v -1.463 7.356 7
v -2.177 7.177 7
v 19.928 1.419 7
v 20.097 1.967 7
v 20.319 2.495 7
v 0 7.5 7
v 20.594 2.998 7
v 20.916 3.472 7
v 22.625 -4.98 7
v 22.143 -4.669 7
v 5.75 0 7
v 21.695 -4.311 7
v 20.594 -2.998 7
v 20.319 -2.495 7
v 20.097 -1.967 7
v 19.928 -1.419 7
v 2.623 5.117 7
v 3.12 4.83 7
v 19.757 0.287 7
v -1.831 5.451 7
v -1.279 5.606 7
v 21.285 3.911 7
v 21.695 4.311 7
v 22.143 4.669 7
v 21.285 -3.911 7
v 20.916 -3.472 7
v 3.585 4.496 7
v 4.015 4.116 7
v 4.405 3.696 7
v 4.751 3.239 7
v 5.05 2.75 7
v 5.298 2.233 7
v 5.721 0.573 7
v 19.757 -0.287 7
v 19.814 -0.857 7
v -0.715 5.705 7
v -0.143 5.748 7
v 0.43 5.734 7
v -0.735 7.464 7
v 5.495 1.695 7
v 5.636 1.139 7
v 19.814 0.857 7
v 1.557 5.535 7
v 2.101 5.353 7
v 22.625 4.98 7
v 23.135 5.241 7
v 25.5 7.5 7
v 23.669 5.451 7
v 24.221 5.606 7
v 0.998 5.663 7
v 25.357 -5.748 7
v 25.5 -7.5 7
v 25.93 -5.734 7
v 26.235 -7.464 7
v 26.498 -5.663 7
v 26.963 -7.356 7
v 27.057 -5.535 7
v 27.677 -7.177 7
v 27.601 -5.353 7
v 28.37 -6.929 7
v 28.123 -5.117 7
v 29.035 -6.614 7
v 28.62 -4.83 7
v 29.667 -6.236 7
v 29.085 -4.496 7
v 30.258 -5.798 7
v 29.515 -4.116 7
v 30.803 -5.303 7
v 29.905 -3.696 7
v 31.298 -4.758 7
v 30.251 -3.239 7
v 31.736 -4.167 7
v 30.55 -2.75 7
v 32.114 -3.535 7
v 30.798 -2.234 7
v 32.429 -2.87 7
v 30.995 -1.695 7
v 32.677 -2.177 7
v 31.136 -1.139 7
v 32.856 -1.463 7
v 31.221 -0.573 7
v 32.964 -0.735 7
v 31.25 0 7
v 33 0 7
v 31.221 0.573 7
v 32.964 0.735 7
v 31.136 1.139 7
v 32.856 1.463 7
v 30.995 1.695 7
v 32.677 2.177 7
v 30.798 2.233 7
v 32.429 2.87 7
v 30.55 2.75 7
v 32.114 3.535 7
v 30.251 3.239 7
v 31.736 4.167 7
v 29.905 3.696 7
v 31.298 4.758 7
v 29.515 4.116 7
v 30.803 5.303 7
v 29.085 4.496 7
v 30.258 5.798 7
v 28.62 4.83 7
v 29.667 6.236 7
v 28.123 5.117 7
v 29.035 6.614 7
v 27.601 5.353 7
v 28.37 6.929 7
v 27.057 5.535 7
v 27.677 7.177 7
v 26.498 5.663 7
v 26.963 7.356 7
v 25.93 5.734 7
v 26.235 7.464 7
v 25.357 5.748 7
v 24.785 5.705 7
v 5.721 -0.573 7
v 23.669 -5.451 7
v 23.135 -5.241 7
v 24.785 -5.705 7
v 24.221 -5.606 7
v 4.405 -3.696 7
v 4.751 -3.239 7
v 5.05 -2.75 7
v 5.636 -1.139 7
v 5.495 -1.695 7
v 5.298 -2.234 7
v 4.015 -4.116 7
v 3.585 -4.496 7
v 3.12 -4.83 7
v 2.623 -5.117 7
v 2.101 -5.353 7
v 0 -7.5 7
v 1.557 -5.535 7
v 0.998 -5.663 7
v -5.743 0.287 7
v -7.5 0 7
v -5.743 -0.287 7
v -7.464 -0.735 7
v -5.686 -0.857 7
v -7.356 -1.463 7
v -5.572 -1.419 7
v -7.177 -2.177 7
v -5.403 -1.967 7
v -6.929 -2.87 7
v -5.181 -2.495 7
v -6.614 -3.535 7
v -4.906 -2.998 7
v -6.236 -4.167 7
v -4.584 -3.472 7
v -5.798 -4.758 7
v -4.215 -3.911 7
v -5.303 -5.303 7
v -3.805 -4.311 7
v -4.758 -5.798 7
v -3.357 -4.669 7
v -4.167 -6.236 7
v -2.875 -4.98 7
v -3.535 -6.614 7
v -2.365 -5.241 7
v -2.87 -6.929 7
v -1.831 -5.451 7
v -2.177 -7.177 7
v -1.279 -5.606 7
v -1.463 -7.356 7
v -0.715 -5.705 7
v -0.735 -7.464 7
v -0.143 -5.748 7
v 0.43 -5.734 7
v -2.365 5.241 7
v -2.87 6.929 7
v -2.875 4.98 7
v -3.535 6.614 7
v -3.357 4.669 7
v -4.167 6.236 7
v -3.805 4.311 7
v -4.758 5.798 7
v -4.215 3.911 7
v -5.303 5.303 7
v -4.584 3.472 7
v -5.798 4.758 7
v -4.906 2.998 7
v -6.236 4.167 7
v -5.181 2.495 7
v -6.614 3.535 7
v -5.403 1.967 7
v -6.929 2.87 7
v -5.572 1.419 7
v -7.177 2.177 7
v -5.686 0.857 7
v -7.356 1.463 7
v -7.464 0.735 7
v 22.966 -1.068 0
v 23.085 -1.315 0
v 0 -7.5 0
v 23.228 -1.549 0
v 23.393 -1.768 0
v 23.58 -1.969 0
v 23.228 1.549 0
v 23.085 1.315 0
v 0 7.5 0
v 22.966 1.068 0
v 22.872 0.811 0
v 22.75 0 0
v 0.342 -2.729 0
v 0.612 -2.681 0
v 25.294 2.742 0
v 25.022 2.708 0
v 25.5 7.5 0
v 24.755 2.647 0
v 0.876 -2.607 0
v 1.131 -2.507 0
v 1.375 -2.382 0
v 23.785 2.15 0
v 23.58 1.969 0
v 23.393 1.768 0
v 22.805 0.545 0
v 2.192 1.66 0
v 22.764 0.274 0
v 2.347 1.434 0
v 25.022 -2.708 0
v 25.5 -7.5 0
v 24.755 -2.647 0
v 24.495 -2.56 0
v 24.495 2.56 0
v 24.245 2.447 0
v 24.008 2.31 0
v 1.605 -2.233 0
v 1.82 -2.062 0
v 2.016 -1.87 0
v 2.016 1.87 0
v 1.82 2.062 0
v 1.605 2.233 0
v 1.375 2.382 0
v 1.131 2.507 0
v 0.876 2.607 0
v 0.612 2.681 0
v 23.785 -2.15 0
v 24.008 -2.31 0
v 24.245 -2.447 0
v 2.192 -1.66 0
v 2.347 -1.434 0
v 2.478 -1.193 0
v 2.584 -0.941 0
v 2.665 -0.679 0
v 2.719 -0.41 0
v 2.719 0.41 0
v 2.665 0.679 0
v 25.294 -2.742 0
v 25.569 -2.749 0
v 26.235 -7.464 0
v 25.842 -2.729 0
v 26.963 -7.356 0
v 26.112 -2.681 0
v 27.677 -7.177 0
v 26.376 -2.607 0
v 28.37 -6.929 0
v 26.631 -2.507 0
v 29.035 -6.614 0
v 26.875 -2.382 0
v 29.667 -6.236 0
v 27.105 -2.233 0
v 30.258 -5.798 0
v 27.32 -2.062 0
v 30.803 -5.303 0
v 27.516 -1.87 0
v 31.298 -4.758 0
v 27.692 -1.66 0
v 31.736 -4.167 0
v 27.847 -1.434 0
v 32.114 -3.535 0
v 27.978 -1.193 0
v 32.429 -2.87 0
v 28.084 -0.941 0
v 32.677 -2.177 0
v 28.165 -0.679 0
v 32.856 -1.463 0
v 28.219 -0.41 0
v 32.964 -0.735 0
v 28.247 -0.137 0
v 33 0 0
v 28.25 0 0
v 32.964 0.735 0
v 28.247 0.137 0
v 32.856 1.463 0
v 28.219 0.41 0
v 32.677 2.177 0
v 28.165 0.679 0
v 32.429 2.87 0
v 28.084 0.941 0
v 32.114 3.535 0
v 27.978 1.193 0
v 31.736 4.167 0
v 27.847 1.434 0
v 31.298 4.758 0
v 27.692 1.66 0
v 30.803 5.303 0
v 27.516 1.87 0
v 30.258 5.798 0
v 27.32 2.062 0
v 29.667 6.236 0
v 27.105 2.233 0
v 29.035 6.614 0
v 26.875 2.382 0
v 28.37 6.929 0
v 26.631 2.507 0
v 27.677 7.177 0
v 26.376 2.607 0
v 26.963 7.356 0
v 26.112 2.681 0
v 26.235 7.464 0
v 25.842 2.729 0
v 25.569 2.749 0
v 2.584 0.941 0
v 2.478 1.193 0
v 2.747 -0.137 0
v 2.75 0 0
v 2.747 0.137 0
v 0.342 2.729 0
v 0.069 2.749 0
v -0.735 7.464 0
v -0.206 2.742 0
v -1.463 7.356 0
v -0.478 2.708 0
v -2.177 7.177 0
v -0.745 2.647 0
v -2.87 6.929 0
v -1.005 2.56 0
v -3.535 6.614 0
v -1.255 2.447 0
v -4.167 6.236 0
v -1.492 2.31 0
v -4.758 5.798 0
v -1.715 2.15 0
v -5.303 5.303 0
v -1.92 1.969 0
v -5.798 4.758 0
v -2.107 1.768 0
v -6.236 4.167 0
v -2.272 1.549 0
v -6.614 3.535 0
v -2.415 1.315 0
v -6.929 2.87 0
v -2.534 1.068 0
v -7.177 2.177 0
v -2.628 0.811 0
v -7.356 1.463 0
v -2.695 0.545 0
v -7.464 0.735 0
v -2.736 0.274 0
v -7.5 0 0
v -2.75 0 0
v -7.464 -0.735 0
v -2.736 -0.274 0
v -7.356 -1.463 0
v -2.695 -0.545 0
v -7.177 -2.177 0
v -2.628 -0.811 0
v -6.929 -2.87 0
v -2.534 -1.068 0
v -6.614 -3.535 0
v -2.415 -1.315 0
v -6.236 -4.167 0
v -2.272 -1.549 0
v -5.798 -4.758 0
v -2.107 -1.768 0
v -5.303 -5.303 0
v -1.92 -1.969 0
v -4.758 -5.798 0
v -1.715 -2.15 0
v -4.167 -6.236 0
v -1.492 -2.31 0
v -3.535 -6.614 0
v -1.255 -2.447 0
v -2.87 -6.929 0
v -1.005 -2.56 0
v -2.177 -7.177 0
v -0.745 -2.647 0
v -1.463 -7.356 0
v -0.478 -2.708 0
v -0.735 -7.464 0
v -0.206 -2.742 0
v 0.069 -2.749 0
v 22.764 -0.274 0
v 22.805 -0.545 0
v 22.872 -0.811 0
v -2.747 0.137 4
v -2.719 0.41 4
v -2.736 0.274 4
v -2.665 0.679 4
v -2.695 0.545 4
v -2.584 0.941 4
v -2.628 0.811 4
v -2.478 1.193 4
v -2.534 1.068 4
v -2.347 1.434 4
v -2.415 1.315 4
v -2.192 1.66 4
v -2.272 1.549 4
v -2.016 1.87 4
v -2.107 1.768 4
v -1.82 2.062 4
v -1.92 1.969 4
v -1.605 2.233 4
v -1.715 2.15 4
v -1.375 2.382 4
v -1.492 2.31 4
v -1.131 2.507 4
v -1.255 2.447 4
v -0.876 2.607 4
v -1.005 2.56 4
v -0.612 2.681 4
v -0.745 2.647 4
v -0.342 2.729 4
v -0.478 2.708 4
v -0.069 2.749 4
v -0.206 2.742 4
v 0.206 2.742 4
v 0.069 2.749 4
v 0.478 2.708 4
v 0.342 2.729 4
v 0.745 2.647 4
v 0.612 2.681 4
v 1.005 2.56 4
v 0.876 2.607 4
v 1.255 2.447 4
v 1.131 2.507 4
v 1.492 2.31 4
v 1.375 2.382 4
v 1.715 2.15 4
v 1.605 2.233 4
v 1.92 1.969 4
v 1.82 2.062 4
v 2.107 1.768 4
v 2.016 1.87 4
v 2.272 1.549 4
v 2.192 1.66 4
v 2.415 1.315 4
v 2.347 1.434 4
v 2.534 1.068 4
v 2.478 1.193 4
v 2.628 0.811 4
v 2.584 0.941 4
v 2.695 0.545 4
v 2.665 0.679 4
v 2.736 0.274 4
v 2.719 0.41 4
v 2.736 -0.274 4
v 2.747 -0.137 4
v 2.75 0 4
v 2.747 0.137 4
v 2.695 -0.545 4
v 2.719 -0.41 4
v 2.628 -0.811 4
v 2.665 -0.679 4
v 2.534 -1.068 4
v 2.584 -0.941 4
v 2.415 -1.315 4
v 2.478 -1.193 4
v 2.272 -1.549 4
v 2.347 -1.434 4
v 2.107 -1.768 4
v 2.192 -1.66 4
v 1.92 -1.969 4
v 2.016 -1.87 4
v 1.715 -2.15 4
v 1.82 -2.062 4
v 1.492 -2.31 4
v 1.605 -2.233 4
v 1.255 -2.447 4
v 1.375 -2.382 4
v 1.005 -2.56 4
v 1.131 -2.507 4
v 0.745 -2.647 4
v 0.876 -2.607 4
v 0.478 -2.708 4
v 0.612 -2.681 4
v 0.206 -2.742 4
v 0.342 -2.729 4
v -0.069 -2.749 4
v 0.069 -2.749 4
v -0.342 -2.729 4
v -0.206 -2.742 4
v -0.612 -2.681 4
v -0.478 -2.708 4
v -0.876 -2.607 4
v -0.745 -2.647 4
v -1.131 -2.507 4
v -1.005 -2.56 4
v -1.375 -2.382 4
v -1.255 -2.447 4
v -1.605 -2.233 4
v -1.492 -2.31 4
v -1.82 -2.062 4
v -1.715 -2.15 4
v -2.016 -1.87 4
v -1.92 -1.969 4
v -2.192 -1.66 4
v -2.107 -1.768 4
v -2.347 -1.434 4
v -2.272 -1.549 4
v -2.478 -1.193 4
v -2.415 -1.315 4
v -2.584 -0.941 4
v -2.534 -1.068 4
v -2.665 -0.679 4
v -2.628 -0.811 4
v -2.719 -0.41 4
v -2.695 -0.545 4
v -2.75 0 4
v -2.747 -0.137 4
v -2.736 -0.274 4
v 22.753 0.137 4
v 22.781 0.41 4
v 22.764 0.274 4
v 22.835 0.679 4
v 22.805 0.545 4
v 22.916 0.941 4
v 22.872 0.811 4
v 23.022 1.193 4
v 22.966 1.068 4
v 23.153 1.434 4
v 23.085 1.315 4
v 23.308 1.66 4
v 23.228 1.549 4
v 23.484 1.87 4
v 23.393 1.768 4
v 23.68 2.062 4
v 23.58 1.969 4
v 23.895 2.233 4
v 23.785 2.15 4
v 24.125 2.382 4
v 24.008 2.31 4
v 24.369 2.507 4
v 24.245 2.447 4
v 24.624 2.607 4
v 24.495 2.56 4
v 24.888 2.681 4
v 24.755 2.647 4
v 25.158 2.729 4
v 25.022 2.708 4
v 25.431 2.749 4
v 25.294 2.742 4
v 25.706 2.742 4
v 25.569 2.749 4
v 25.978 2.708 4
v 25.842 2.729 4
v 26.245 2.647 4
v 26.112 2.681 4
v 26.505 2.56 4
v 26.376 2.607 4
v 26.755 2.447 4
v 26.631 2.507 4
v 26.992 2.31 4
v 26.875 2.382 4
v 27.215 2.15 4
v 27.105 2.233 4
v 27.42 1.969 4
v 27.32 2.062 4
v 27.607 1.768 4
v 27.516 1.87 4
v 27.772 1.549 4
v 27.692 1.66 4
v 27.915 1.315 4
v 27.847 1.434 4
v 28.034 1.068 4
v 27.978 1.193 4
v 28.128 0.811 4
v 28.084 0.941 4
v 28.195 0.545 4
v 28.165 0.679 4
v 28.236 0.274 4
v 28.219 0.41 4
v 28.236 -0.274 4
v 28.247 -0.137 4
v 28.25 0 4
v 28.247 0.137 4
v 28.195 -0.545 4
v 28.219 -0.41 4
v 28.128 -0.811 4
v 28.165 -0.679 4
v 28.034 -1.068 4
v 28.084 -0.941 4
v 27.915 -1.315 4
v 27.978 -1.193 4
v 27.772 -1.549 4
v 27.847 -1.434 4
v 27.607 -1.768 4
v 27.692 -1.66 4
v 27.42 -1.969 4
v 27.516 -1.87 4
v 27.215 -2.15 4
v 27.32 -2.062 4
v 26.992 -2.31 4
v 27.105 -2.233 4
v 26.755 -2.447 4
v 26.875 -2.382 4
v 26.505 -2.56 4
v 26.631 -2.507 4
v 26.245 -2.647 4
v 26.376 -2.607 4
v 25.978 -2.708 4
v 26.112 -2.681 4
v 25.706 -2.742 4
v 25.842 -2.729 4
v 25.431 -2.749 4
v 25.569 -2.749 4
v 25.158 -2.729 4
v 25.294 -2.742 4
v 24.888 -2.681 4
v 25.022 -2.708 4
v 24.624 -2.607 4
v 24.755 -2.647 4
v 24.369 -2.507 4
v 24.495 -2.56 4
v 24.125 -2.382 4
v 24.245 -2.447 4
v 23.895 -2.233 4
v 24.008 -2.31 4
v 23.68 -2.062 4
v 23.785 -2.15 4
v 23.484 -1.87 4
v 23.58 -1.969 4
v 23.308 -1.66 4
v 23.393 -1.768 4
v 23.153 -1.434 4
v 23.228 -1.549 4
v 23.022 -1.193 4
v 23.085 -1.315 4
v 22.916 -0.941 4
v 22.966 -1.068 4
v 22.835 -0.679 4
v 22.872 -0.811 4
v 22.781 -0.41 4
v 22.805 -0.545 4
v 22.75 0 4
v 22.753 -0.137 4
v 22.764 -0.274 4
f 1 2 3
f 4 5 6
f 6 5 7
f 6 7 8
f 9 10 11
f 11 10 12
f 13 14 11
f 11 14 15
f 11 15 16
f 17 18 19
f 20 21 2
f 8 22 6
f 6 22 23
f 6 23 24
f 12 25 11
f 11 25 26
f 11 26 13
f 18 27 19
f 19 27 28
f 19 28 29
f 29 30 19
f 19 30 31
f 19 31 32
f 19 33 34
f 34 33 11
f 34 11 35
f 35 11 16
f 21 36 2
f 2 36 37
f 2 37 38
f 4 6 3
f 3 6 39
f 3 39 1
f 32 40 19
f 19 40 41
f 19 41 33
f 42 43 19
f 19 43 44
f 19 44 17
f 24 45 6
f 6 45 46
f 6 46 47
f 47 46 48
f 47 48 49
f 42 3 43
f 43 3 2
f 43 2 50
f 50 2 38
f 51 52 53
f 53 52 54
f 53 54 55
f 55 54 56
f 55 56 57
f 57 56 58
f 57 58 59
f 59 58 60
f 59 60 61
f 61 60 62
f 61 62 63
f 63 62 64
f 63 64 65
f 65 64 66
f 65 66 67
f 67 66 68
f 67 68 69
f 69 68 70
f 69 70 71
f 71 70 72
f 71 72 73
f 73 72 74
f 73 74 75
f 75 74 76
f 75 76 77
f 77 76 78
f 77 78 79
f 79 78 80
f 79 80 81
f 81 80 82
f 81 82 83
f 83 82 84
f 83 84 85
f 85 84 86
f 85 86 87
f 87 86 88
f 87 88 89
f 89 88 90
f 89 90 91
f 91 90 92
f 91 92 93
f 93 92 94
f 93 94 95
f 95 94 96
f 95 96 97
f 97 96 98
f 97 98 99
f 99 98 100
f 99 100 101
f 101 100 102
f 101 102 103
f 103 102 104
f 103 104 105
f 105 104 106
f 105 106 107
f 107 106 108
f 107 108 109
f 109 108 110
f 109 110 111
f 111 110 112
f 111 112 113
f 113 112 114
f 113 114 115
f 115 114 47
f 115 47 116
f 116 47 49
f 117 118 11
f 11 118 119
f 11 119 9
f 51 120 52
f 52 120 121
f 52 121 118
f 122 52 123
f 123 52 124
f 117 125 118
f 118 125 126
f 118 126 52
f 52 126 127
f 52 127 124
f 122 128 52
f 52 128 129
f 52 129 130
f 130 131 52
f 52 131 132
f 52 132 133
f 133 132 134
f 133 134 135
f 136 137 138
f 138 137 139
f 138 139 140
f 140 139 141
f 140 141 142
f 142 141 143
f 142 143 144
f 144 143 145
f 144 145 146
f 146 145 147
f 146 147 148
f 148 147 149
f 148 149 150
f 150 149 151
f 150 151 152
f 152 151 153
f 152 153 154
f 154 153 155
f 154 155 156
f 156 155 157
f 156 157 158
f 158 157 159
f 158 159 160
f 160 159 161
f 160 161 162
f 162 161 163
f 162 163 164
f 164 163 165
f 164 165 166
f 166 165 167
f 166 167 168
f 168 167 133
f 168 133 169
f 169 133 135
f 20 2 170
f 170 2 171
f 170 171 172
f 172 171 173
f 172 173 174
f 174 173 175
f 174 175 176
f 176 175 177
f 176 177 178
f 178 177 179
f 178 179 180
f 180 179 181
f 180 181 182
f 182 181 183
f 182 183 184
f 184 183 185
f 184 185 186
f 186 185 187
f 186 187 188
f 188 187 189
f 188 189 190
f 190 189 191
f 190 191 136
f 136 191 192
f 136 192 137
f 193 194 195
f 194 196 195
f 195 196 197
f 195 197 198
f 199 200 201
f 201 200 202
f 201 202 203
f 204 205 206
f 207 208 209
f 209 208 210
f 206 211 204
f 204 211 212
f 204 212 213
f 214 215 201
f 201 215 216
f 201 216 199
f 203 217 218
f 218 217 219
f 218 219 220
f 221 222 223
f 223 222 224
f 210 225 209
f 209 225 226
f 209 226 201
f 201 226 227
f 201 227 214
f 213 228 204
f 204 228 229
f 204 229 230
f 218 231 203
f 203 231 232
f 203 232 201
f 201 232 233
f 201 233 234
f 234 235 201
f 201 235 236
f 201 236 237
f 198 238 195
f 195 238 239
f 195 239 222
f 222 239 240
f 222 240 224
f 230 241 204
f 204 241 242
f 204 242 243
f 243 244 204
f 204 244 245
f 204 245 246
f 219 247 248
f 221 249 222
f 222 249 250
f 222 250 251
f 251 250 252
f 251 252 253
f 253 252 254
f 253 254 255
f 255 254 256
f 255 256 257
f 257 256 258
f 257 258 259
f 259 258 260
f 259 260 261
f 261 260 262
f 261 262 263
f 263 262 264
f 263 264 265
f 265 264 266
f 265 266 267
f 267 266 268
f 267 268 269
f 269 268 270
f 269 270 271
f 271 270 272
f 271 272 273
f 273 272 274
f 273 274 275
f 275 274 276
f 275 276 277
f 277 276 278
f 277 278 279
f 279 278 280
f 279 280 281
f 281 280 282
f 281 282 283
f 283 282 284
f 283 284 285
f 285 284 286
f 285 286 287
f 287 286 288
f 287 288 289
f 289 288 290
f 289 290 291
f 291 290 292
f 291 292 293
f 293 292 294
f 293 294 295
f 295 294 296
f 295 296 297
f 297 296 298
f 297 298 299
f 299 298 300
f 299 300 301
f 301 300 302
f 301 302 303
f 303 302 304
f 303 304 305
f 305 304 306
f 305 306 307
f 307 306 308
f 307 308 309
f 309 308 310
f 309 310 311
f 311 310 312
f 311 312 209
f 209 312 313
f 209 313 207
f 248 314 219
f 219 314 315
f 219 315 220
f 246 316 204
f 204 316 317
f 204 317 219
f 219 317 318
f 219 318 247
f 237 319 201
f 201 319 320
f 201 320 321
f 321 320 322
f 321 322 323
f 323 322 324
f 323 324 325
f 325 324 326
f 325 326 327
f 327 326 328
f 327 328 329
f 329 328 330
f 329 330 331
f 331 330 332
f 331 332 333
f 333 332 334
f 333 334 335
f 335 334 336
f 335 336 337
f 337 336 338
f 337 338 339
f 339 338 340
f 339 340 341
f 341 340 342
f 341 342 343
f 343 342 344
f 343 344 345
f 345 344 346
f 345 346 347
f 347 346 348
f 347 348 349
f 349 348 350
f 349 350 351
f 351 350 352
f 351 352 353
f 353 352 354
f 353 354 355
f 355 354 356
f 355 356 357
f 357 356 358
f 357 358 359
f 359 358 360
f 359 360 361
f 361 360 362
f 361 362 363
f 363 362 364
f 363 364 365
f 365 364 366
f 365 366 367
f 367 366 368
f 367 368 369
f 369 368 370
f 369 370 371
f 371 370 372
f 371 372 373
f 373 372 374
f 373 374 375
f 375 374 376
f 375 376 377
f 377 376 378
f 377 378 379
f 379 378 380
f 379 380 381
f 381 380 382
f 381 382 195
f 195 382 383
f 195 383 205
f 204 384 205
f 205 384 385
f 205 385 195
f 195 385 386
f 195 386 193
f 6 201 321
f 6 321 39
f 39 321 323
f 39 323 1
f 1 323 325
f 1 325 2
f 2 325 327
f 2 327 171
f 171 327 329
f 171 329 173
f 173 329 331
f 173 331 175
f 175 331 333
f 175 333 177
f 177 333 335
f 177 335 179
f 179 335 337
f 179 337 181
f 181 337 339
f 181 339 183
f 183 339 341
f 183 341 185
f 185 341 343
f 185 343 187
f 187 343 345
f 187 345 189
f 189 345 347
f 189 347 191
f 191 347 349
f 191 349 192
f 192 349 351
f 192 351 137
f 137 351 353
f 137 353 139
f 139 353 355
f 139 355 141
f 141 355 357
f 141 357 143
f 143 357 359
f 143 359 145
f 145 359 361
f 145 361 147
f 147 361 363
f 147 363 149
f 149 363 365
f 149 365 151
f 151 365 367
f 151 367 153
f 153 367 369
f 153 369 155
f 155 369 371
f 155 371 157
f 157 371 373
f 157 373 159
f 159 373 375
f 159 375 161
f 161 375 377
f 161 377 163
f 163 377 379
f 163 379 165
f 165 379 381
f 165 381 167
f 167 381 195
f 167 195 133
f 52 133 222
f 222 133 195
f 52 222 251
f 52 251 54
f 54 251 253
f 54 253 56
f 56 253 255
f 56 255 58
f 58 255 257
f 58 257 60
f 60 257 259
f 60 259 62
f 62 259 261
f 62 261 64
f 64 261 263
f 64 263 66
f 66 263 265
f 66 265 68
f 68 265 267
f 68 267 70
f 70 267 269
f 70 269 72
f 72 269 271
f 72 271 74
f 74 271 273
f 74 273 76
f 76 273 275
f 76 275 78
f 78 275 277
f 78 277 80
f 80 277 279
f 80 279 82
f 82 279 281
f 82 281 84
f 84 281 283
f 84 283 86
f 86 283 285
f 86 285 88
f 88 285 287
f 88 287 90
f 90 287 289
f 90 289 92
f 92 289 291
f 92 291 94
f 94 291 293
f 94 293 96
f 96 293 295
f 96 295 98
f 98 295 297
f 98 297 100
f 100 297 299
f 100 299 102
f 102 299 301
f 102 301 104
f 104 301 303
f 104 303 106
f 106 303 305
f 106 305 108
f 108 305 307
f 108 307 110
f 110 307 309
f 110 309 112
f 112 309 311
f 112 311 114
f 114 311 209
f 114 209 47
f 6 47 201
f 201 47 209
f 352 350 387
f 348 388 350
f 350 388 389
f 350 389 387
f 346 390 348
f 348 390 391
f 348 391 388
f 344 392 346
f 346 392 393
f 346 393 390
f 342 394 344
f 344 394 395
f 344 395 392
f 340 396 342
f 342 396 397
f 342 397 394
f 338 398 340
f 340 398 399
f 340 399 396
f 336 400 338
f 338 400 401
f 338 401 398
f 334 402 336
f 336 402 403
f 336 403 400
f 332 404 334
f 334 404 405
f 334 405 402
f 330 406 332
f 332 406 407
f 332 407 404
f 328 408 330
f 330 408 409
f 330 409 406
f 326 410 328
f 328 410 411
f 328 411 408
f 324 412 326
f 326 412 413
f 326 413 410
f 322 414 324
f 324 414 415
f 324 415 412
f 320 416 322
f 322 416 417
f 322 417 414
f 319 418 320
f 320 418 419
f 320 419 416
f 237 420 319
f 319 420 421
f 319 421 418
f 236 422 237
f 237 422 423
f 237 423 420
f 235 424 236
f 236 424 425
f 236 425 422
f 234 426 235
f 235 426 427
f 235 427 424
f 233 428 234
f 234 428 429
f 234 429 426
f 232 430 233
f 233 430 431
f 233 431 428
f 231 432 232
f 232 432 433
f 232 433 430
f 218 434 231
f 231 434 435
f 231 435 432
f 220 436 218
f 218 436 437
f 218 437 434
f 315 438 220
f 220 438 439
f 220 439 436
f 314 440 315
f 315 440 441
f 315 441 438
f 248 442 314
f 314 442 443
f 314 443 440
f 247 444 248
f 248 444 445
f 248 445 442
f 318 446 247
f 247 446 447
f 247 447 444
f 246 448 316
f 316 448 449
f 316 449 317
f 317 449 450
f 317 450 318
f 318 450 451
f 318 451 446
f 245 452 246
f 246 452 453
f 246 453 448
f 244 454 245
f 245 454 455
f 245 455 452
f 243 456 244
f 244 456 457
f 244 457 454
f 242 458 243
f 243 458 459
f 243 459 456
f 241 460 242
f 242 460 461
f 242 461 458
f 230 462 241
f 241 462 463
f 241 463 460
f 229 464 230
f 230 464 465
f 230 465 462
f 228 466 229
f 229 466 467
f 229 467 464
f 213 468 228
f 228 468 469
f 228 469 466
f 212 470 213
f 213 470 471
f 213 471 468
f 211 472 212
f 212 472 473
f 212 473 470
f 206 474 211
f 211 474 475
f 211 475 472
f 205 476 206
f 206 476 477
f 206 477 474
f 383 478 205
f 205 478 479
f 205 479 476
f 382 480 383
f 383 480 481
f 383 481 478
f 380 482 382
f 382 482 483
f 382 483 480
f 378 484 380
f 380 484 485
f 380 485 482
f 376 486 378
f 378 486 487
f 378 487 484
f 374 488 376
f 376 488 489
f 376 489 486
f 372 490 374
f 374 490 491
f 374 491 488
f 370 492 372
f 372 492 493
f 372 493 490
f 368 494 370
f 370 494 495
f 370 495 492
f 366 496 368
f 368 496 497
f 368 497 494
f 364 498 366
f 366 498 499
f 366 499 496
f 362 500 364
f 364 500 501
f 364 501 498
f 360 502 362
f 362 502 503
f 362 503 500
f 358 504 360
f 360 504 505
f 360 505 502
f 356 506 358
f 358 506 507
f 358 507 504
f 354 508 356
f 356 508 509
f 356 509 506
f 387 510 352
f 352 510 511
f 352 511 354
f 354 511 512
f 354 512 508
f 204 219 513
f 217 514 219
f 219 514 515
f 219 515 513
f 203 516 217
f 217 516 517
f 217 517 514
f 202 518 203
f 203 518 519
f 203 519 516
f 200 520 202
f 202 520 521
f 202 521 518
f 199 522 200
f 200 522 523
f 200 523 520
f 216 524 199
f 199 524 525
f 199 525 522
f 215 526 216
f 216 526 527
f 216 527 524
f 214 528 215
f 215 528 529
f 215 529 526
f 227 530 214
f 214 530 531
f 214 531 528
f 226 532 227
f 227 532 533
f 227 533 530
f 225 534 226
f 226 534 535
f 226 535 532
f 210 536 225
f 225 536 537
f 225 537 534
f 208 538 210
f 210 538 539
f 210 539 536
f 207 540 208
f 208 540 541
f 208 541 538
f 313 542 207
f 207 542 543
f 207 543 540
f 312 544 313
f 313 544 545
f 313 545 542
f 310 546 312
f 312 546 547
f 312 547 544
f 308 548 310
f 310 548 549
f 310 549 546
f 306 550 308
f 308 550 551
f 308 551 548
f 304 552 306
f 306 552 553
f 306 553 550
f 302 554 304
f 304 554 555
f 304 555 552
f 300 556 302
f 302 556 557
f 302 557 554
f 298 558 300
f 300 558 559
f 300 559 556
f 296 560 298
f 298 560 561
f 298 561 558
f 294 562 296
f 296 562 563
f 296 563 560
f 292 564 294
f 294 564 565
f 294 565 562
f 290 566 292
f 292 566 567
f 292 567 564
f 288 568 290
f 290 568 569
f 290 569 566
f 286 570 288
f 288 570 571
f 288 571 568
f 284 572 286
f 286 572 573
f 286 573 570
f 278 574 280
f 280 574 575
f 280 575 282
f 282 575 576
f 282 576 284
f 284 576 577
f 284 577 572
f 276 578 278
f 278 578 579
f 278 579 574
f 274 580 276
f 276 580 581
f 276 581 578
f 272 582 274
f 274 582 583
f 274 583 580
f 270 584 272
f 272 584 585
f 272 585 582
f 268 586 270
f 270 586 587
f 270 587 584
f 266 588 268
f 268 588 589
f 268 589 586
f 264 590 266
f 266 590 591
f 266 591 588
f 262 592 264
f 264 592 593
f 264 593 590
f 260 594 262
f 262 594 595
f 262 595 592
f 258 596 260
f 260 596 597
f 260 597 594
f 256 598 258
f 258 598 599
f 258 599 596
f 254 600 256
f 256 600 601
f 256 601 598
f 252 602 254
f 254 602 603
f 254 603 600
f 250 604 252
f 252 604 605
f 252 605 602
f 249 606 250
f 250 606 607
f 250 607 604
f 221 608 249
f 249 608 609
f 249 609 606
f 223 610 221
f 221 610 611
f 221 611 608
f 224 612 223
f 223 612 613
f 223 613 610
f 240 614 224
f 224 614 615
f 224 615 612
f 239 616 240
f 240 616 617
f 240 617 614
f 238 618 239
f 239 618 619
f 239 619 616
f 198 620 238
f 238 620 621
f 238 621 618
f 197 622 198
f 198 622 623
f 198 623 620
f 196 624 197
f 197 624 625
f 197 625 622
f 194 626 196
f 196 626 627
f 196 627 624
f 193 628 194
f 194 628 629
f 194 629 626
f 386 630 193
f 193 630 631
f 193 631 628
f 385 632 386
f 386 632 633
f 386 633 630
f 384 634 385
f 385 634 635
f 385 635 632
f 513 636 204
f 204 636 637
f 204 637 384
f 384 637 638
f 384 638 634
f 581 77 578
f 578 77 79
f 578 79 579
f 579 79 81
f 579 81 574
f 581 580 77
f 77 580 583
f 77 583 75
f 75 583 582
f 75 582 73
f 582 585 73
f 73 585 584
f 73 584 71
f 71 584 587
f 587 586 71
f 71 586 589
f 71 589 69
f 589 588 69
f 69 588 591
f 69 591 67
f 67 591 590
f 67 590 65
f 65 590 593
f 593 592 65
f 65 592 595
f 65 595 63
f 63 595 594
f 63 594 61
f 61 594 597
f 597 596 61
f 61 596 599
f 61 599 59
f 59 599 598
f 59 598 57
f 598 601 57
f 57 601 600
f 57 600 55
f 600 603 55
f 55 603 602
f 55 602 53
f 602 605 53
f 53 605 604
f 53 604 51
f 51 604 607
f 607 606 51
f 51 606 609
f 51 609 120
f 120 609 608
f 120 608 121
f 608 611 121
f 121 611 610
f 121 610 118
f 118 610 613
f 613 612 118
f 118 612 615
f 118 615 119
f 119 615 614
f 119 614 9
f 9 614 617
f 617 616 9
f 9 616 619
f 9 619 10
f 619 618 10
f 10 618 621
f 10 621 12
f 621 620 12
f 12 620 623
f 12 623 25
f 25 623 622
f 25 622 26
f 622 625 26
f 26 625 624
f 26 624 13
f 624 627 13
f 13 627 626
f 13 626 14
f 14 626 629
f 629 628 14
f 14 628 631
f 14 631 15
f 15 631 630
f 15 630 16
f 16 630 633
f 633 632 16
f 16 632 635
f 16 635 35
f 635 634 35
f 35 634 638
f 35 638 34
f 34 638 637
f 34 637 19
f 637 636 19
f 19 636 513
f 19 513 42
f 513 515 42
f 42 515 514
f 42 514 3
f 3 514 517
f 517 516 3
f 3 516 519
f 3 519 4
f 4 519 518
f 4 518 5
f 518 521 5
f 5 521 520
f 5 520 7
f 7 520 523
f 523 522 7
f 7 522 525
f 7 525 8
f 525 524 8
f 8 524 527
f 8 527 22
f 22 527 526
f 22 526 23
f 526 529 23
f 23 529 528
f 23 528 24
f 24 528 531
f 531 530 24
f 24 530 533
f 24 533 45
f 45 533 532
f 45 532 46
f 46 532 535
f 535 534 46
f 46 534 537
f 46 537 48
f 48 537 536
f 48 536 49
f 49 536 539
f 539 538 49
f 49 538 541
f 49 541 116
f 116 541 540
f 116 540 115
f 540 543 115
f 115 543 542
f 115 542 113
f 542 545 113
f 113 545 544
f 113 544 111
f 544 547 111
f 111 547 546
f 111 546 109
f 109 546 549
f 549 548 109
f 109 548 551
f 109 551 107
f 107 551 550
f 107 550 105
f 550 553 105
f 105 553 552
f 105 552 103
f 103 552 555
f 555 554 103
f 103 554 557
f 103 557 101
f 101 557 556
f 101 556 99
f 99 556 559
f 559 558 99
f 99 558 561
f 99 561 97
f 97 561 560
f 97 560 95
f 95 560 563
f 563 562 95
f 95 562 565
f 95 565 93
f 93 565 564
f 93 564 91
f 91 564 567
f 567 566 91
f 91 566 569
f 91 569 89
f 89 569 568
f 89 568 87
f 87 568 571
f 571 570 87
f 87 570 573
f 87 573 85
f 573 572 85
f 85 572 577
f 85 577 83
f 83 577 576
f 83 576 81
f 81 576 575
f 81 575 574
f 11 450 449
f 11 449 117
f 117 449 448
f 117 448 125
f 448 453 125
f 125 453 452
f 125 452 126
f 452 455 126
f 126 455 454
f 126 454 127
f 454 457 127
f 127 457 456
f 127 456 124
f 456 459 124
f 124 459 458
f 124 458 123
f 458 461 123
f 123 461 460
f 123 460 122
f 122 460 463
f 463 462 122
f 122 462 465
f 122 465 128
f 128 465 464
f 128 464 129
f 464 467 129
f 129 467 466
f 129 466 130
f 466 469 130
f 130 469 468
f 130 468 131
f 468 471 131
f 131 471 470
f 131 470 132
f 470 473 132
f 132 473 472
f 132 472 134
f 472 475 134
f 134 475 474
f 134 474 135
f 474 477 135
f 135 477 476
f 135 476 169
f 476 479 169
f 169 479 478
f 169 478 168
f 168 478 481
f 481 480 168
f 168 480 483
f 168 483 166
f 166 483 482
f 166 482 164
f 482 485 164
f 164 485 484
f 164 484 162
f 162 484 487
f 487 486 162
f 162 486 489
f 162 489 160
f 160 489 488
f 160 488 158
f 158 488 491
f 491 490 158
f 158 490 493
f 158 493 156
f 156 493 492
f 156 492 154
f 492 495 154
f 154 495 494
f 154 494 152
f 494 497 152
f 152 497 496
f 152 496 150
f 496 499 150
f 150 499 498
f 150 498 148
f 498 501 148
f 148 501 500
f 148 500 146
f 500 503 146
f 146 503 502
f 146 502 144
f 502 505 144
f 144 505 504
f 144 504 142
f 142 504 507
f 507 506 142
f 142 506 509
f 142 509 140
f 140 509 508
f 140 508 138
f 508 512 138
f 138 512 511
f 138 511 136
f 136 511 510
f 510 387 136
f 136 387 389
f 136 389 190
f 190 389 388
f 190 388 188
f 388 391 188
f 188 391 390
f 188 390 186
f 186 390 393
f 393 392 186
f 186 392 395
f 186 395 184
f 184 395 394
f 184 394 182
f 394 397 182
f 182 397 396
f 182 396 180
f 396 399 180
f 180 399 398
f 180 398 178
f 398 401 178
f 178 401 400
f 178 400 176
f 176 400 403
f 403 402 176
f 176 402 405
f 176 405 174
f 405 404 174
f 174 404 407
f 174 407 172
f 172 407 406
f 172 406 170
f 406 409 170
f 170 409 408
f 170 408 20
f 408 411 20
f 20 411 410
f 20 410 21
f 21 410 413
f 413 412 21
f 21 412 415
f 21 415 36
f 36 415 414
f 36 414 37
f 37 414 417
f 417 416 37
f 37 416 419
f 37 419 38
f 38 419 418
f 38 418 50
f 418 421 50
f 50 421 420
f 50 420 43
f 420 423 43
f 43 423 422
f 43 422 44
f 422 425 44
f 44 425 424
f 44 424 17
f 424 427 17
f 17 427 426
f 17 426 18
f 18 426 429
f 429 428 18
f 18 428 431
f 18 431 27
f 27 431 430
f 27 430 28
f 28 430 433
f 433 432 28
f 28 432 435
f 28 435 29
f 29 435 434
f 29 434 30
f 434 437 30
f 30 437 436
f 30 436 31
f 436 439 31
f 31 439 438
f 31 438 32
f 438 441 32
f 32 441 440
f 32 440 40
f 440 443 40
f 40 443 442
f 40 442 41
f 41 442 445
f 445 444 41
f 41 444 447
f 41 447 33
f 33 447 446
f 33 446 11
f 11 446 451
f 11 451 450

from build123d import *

# Parameters (mm, degrees)
ESQUISSE1_R        = 2.75
BOSS_EXTRU_1_DEPTH = 7
CHANFREIN1_SIZE    = 3


with BuildPart() as part:
    # Esquisse1 → Boss.-Extru.1 (new body)
    with BuildSketch(Plane.XY):
        with BuildLine():
            Line((0, -7.5), (25.5, -7.5))
            ThreePointArc((25.5, -7.5), (33, 0), (25.5, 7.5))
            Line((25.5, 7.5), (0, 7.5))
            ThreePointArc((0, 7.5), (-7.5, 0), (0, -7.5))
        make_face()
        Circle(ESQUISSE1_R, mode=Mode.SUBTRACT)
        with Locations((25.5, 0)):
            Circle(ESQUISSE1_R, mode=Mode.SUBTRACT)
    extrude(amount=BOSS_EXTRU_1_DEPTH)

    # Chanfrein1
    chanfrein1_edges = [part.edges().sort_by_distance(p)[0] for p in [
        (-2.75, 0, 7),
        (22.75, 0, 7),
    ]]
    chamfer(chanfrein1_edges, length=CHANFREIN1_SIZE)


solid = part.part
